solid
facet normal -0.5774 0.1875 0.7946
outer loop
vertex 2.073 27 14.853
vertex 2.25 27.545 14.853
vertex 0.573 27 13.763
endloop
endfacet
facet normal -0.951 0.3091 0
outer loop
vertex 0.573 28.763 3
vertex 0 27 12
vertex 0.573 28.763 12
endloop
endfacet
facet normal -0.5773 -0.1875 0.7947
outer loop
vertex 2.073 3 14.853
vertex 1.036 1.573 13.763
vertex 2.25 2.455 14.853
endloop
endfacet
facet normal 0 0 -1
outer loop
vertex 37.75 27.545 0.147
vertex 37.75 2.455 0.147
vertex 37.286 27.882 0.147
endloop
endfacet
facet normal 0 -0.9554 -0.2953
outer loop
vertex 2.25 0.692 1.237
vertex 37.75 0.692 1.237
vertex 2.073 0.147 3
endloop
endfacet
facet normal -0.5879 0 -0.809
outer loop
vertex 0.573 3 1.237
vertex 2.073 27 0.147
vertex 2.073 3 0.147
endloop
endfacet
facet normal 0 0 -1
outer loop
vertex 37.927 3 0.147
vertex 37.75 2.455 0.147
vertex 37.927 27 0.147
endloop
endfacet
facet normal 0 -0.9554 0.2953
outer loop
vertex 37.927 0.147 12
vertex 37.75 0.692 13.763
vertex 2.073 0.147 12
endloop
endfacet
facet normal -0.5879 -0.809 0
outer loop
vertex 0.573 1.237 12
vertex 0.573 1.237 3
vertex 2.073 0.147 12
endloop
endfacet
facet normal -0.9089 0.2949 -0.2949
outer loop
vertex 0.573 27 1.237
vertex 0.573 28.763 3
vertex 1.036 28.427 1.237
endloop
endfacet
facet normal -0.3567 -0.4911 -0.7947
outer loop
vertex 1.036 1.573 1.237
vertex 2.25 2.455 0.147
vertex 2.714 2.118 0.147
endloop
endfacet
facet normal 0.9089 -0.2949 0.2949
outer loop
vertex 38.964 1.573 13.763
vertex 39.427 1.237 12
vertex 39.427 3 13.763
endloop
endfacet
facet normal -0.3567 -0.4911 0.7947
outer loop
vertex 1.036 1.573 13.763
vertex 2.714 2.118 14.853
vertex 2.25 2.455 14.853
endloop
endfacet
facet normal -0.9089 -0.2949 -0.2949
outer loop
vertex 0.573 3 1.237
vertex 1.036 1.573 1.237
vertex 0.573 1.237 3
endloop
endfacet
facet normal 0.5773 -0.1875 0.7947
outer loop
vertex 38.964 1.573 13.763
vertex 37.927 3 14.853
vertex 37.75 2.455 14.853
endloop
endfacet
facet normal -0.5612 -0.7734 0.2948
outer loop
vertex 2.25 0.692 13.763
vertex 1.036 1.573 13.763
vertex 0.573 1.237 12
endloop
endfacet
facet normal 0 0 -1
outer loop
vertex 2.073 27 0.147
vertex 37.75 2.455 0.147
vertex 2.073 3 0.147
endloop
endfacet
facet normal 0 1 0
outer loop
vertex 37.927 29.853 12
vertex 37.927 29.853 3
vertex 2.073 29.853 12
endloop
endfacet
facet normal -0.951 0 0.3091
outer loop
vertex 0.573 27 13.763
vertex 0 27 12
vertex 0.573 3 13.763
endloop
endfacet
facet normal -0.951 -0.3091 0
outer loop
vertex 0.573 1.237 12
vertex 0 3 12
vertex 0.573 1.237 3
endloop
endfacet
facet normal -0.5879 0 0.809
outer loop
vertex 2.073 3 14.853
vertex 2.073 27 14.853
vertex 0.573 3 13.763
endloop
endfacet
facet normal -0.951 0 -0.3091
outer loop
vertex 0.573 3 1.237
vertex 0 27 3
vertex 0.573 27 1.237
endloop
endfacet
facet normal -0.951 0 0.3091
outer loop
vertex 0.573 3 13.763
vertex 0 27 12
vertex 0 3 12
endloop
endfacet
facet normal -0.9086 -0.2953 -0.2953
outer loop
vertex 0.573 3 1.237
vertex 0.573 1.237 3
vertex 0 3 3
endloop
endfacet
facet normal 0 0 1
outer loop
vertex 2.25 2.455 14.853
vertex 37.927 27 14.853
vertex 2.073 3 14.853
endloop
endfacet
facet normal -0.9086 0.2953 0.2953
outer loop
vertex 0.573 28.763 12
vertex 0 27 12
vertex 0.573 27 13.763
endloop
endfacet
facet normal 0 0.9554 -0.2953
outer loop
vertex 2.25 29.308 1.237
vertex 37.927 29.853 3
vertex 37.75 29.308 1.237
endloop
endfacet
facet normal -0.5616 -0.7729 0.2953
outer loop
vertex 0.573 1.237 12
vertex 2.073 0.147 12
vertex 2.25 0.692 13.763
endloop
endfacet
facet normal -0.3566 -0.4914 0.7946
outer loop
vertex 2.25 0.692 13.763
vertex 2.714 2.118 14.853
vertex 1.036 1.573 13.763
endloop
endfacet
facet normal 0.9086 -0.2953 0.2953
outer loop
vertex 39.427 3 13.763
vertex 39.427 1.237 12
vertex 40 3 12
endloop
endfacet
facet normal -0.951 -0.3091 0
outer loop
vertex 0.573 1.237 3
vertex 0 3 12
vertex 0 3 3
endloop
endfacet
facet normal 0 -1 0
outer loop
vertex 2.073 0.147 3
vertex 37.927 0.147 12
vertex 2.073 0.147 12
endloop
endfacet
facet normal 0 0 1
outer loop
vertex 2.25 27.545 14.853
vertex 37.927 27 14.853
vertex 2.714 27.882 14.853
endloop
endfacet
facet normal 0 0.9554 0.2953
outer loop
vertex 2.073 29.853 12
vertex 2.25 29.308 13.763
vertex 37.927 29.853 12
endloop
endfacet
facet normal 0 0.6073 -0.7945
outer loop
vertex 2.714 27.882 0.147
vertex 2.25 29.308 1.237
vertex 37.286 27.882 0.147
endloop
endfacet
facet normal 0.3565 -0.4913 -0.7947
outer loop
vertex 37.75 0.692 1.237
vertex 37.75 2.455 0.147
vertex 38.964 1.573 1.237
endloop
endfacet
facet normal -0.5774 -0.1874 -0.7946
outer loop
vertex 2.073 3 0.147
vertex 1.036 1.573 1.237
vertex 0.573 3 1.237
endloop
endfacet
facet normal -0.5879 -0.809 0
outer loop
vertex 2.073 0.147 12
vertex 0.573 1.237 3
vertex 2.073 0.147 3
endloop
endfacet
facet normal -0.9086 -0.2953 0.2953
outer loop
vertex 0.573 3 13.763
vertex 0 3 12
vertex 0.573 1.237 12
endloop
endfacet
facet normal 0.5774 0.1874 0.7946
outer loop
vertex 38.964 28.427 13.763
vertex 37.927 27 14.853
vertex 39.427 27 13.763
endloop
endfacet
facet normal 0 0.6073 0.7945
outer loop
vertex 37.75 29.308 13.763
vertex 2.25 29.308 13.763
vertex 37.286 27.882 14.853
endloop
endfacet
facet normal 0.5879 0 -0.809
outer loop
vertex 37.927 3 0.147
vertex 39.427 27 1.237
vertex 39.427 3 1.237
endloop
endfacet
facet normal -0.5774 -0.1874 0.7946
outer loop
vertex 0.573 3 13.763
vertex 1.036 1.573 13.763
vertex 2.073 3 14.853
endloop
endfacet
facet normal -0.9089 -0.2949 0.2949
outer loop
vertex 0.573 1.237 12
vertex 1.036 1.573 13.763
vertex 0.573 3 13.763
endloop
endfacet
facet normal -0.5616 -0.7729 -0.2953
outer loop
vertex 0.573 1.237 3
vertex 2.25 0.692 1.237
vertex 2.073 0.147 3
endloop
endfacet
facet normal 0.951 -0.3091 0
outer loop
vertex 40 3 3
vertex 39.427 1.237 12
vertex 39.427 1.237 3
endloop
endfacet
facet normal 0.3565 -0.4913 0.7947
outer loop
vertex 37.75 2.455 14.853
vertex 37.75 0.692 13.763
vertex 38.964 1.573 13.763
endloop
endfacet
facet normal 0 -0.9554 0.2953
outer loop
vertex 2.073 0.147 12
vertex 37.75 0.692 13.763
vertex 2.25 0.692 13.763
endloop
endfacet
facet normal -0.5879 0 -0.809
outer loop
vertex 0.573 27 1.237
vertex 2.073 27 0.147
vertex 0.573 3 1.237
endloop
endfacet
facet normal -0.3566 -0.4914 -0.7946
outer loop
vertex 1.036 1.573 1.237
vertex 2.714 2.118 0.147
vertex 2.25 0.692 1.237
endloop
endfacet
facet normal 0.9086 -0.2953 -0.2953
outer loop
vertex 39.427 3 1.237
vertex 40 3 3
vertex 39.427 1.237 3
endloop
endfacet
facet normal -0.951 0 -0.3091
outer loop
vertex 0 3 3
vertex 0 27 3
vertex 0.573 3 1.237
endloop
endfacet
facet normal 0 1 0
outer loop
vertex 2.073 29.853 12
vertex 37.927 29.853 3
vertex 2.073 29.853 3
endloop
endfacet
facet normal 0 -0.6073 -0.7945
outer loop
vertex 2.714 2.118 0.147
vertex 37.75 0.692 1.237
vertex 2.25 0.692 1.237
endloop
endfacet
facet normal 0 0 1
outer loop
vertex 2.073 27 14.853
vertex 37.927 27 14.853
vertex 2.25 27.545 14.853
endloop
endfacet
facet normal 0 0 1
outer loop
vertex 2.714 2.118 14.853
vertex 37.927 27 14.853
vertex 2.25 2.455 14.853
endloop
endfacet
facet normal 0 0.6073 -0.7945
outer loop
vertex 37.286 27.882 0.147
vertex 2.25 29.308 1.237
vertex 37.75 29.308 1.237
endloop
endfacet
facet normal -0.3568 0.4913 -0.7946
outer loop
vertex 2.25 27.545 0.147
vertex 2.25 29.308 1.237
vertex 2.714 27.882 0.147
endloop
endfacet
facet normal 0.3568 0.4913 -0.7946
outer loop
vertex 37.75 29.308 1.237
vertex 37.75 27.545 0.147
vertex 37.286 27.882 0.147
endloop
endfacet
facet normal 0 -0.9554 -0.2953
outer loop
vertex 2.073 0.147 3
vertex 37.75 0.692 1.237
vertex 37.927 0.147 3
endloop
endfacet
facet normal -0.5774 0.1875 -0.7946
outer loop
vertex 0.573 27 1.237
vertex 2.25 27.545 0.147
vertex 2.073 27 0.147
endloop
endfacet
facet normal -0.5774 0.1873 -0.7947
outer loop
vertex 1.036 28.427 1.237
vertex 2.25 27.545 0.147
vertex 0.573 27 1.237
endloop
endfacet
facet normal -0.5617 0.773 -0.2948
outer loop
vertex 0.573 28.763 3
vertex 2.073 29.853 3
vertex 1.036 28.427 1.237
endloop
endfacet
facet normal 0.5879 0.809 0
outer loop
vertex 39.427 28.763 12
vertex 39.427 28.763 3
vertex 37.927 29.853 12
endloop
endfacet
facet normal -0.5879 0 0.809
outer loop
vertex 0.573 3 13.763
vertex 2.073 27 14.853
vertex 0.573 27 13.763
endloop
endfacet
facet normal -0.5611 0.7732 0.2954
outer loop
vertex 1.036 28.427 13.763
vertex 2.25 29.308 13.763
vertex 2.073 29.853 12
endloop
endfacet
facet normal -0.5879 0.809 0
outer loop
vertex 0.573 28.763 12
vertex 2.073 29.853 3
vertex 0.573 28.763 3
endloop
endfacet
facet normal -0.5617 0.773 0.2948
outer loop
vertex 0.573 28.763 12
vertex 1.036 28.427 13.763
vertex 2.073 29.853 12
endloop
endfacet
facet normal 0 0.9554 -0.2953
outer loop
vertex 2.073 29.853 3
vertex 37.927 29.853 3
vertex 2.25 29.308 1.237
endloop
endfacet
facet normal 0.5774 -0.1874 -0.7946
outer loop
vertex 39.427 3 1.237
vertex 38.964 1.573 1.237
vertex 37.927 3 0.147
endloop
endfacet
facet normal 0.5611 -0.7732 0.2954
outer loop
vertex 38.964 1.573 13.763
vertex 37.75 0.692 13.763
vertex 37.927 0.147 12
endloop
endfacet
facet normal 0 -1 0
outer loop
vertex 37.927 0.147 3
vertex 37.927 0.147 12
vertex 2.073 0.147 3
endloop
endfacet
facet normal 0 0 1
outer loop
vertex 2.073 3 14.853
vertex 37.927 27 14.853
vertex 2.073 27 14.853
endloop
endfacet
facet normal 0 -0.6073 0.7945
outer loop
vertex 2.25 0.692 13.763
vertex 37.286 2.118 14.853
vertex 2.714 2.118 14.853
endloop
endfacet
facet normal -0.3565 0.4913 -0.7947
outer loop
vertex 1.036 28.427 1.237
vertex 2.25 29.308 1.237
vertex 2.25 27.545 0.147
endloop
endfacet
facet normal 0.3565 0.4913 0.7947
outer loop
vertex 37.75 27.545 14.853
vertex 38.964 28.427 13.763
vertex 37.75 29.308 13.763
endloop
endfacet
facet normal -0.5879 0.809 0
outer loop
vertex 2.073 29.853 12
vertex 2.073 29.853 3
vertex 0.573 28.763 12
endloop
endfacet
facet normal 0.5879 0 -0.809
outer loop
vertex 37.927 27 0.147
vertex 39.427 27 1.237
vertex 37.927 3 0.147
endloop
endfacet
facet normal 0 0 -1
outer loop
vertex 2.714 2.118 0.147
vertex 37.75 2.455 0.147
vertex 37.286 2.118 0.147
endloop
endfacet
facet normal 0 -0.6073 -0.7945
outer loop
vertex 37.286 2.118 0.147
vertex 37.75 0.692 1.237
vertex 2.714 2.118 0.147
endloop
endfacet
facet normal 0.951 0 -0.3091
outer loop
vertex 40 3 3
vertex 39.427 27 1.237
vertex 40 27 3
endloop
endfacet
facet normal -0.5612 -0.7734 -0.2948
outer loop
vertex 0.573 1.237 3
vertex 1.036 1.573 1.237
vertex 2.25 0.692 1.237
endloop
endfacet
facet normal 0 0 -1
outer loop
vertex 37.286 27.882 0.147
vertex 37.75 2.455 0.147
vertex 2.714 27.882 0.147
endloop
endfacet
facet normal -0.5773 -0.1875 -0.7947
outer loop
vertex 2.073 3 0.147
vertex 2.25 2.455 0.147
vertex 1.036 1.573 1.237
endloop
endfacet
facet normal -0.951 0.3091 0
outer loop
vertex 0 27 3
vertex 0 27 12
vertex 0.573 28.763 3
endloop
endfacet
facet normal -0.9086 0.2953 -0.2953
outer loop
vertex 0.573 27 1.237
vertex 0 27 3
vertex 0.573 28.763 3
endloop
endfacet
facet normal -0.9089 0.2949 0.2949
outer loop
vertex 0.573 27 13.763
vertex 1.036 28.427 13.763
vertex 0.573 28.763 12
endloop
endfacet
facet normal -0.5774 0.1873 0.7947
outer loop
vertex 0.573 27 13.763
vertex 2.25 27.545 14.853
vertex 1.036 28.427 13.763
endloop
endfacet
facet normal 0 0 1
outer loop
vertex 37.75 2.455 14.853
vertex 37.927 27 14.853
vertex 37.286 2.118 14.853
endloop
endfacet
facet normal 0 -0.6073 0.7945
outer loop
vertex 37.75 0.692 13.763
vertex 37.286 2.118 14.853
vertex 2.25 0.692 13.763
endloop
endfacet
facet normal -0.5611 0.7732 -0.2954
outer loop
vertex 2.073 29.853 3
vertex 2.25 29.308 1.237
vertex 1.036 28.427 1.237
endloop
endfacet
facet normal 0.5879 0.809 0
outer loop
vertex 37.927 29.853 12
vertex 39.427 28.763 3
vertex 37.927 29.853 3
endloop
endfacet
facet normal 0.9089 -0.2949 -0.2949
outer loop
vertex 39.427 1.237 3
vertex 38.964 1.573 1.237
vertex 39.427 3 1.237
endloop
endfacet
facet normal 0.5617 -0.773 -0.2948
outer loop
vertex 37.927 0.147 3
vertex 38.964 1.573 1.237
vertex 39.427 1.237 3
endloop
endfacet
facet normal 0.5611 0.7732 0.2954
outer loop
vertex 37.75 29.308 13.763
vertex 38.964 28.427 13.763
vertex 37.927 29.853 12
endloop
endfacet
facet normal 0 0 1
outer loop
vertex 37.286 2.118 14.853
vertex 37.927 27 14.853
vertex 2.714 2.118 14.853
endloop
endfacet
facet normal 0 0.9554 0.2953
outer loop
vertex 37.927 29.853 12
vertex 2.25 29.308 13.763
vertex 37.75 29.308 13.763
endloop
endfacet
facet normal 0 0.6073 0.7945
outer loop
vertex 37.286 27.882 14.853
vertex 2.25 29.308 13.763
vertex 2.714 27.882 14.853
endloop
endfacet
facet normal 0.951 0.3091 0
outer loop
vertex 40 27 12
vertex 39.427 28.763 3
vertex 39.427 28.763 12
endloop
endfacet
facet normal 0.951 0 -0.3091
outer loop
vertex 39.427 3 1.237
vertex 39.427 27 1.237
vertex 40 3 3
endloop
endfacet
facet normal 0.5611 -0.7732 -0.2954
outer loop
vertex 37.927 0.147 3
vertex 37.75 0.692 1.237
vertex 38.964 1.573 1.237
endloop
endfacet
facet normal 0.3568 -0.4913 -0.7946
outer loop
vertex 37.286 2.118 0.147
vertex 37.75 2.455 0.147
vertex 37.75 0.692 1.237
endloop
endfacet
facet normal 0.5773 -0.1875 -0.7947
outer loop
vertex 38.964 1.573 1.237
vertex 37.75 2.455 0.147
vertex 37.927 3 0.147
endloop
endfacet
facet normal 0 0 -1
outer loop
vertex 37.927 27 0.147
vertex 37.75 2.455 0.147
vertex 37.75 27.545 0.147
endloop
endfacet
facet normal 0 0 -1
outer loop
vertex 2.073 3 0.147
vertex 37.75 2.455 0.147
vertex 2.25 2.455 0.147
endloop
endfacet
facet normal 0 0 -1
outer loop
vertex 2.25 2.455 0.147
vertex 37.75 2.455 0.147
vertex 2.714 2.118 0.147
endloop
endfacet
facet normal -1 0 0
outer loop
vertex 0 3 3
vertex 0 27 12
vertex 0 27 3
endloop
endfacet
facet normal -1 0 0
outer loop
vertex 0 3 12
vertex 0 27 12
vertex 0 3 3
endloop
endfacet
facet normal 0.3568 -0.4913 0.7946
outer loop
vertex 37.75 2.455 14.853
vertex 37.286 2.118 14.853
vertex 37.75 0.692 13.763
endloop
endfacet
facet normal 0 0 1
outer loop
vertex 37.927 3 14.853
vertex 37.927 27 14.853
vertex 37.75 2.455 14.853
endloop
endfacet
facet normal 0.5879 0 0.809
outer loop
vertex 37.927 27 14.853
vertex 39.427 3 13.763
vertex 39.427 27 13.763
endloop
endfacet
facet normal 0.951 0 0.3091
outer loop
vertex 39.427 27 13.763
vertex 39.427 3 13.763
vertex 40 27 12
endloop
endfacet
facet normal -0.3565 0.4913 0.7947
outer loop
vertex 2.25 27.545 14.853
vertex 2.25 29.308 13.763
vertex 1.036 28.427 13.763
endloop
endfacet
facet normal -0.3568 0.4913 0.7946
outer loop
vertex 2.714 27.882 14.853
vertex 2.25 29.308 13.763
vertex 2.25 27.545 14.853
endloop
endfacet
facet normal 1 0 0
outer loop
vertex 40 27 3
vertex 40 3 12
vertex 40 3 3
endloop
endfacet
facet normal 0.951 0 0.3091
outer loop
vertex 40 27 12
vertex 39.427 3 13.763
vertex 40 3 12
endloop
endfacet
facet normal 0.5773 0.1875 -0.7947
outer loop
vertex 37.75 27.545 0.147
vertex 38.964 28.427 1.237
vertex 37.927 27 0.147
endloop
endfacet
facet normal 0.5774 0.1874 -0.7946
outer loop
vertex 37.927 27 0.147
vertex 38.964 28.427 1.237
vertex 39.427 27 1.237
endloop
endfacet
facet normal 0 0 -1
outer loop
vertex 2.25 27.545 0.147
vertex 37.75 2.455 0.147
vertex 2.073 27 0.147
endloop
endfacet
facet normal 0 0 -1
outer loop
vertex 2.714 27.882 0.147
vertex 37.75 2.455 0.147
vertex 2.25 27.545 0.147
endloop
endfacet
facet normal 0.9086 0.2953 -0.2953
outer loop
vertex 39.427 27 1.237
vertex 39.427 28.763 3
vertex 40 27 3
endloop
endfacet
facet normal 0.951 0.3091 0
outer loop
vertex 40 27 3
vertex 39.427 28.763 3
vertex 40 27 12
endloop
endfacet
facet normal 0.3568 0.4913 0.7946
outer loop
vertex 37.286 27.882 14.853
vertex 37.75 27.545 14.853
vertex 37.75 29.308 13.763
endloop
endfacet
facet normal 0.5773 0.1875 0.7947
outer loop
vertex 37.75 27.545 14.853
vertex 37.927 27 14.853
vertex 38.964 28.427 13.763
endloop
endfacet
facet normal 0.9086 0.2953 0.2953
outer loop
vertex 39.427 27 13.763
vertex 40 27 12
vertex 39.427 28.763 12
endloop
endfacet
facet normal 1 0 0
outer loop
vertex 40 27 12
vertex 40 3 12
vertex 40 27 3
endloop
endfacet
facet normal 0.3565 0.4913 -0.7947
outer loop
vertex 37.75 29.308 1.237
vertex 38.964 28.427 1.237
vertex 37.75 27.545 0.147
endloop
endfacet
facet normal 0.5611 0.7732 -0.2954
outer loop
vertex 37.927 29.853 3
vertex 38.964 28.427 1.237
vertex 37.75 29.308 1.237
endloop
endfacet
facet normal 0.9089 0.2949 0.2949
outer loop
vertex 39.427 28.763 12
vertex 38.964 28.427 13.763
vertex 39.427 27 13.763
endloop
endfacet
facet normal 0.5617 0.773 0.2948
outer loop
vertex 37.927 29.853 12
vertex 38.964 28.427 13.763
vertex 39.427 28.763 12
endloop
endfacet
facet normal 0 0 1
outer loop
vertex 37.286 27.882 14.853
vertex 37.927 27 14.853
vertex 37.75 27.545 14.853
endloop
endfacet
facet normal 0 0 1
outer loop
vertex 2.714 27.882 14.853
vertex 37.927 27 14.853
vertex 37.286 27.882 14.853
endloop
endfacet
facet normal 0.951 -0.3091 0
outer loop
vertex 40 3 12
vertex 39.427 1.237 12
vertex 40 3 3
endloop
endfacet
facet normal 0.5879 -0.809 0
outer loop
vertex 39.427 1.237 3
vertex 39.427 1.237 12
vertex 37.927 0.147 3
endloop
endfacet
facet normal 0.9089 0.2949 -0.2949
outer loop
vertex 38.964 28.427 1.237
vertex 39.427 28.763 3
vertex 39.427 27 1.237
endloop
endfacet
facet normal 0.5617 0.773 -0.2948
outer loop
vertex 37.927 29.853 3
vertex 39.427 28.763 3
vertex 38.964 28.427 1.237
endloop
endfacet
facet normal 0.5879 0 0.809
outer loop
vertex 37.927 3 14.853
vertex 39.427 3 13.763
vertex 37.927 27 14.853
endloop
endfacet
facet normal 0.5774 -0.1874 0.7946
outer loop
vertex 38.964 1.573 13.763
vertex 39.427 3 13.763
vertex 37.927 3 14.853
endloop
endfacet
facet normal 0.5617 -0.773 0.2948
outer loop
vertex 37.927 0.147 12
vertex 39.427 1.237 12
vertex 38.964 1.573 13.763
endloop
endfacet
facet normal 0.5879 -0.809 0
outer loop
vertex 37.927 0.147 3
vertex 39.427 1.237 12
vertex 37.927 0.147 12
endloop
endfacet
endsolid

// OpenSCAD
module rounded_rectangular_block(length, width, height, radius) {
    hull() {
        translate([radius, radius, radius]) sphere(r = radius);
        translate([length - radius, radius, radius]) sphere(r = radius);
        translate([radius, width - radius, radius]) sphere(r = radius);
        translate([length - radius, width - radius, radius]) sphere(r = radius);
        translate([radius, radius, height - radius]) sphere(r = radius);
        translate([length - radius, radius, height - radius]) sphere(r = radius);
        translate([radius, width - radius, height - radius]) sphere(r = radius);
        translate([length - radius, width - radius, height - radius]) sphere(r = radius);
    }
}

// Parameters for the rectangular block
length = 40;  // Block length
width = 30;   // Block width
height = 15;  // Block height
radius = 3;   // Radius for rounded edges and corners

// Create the block
rounded_rectangular_block(length, width, height, radius);
